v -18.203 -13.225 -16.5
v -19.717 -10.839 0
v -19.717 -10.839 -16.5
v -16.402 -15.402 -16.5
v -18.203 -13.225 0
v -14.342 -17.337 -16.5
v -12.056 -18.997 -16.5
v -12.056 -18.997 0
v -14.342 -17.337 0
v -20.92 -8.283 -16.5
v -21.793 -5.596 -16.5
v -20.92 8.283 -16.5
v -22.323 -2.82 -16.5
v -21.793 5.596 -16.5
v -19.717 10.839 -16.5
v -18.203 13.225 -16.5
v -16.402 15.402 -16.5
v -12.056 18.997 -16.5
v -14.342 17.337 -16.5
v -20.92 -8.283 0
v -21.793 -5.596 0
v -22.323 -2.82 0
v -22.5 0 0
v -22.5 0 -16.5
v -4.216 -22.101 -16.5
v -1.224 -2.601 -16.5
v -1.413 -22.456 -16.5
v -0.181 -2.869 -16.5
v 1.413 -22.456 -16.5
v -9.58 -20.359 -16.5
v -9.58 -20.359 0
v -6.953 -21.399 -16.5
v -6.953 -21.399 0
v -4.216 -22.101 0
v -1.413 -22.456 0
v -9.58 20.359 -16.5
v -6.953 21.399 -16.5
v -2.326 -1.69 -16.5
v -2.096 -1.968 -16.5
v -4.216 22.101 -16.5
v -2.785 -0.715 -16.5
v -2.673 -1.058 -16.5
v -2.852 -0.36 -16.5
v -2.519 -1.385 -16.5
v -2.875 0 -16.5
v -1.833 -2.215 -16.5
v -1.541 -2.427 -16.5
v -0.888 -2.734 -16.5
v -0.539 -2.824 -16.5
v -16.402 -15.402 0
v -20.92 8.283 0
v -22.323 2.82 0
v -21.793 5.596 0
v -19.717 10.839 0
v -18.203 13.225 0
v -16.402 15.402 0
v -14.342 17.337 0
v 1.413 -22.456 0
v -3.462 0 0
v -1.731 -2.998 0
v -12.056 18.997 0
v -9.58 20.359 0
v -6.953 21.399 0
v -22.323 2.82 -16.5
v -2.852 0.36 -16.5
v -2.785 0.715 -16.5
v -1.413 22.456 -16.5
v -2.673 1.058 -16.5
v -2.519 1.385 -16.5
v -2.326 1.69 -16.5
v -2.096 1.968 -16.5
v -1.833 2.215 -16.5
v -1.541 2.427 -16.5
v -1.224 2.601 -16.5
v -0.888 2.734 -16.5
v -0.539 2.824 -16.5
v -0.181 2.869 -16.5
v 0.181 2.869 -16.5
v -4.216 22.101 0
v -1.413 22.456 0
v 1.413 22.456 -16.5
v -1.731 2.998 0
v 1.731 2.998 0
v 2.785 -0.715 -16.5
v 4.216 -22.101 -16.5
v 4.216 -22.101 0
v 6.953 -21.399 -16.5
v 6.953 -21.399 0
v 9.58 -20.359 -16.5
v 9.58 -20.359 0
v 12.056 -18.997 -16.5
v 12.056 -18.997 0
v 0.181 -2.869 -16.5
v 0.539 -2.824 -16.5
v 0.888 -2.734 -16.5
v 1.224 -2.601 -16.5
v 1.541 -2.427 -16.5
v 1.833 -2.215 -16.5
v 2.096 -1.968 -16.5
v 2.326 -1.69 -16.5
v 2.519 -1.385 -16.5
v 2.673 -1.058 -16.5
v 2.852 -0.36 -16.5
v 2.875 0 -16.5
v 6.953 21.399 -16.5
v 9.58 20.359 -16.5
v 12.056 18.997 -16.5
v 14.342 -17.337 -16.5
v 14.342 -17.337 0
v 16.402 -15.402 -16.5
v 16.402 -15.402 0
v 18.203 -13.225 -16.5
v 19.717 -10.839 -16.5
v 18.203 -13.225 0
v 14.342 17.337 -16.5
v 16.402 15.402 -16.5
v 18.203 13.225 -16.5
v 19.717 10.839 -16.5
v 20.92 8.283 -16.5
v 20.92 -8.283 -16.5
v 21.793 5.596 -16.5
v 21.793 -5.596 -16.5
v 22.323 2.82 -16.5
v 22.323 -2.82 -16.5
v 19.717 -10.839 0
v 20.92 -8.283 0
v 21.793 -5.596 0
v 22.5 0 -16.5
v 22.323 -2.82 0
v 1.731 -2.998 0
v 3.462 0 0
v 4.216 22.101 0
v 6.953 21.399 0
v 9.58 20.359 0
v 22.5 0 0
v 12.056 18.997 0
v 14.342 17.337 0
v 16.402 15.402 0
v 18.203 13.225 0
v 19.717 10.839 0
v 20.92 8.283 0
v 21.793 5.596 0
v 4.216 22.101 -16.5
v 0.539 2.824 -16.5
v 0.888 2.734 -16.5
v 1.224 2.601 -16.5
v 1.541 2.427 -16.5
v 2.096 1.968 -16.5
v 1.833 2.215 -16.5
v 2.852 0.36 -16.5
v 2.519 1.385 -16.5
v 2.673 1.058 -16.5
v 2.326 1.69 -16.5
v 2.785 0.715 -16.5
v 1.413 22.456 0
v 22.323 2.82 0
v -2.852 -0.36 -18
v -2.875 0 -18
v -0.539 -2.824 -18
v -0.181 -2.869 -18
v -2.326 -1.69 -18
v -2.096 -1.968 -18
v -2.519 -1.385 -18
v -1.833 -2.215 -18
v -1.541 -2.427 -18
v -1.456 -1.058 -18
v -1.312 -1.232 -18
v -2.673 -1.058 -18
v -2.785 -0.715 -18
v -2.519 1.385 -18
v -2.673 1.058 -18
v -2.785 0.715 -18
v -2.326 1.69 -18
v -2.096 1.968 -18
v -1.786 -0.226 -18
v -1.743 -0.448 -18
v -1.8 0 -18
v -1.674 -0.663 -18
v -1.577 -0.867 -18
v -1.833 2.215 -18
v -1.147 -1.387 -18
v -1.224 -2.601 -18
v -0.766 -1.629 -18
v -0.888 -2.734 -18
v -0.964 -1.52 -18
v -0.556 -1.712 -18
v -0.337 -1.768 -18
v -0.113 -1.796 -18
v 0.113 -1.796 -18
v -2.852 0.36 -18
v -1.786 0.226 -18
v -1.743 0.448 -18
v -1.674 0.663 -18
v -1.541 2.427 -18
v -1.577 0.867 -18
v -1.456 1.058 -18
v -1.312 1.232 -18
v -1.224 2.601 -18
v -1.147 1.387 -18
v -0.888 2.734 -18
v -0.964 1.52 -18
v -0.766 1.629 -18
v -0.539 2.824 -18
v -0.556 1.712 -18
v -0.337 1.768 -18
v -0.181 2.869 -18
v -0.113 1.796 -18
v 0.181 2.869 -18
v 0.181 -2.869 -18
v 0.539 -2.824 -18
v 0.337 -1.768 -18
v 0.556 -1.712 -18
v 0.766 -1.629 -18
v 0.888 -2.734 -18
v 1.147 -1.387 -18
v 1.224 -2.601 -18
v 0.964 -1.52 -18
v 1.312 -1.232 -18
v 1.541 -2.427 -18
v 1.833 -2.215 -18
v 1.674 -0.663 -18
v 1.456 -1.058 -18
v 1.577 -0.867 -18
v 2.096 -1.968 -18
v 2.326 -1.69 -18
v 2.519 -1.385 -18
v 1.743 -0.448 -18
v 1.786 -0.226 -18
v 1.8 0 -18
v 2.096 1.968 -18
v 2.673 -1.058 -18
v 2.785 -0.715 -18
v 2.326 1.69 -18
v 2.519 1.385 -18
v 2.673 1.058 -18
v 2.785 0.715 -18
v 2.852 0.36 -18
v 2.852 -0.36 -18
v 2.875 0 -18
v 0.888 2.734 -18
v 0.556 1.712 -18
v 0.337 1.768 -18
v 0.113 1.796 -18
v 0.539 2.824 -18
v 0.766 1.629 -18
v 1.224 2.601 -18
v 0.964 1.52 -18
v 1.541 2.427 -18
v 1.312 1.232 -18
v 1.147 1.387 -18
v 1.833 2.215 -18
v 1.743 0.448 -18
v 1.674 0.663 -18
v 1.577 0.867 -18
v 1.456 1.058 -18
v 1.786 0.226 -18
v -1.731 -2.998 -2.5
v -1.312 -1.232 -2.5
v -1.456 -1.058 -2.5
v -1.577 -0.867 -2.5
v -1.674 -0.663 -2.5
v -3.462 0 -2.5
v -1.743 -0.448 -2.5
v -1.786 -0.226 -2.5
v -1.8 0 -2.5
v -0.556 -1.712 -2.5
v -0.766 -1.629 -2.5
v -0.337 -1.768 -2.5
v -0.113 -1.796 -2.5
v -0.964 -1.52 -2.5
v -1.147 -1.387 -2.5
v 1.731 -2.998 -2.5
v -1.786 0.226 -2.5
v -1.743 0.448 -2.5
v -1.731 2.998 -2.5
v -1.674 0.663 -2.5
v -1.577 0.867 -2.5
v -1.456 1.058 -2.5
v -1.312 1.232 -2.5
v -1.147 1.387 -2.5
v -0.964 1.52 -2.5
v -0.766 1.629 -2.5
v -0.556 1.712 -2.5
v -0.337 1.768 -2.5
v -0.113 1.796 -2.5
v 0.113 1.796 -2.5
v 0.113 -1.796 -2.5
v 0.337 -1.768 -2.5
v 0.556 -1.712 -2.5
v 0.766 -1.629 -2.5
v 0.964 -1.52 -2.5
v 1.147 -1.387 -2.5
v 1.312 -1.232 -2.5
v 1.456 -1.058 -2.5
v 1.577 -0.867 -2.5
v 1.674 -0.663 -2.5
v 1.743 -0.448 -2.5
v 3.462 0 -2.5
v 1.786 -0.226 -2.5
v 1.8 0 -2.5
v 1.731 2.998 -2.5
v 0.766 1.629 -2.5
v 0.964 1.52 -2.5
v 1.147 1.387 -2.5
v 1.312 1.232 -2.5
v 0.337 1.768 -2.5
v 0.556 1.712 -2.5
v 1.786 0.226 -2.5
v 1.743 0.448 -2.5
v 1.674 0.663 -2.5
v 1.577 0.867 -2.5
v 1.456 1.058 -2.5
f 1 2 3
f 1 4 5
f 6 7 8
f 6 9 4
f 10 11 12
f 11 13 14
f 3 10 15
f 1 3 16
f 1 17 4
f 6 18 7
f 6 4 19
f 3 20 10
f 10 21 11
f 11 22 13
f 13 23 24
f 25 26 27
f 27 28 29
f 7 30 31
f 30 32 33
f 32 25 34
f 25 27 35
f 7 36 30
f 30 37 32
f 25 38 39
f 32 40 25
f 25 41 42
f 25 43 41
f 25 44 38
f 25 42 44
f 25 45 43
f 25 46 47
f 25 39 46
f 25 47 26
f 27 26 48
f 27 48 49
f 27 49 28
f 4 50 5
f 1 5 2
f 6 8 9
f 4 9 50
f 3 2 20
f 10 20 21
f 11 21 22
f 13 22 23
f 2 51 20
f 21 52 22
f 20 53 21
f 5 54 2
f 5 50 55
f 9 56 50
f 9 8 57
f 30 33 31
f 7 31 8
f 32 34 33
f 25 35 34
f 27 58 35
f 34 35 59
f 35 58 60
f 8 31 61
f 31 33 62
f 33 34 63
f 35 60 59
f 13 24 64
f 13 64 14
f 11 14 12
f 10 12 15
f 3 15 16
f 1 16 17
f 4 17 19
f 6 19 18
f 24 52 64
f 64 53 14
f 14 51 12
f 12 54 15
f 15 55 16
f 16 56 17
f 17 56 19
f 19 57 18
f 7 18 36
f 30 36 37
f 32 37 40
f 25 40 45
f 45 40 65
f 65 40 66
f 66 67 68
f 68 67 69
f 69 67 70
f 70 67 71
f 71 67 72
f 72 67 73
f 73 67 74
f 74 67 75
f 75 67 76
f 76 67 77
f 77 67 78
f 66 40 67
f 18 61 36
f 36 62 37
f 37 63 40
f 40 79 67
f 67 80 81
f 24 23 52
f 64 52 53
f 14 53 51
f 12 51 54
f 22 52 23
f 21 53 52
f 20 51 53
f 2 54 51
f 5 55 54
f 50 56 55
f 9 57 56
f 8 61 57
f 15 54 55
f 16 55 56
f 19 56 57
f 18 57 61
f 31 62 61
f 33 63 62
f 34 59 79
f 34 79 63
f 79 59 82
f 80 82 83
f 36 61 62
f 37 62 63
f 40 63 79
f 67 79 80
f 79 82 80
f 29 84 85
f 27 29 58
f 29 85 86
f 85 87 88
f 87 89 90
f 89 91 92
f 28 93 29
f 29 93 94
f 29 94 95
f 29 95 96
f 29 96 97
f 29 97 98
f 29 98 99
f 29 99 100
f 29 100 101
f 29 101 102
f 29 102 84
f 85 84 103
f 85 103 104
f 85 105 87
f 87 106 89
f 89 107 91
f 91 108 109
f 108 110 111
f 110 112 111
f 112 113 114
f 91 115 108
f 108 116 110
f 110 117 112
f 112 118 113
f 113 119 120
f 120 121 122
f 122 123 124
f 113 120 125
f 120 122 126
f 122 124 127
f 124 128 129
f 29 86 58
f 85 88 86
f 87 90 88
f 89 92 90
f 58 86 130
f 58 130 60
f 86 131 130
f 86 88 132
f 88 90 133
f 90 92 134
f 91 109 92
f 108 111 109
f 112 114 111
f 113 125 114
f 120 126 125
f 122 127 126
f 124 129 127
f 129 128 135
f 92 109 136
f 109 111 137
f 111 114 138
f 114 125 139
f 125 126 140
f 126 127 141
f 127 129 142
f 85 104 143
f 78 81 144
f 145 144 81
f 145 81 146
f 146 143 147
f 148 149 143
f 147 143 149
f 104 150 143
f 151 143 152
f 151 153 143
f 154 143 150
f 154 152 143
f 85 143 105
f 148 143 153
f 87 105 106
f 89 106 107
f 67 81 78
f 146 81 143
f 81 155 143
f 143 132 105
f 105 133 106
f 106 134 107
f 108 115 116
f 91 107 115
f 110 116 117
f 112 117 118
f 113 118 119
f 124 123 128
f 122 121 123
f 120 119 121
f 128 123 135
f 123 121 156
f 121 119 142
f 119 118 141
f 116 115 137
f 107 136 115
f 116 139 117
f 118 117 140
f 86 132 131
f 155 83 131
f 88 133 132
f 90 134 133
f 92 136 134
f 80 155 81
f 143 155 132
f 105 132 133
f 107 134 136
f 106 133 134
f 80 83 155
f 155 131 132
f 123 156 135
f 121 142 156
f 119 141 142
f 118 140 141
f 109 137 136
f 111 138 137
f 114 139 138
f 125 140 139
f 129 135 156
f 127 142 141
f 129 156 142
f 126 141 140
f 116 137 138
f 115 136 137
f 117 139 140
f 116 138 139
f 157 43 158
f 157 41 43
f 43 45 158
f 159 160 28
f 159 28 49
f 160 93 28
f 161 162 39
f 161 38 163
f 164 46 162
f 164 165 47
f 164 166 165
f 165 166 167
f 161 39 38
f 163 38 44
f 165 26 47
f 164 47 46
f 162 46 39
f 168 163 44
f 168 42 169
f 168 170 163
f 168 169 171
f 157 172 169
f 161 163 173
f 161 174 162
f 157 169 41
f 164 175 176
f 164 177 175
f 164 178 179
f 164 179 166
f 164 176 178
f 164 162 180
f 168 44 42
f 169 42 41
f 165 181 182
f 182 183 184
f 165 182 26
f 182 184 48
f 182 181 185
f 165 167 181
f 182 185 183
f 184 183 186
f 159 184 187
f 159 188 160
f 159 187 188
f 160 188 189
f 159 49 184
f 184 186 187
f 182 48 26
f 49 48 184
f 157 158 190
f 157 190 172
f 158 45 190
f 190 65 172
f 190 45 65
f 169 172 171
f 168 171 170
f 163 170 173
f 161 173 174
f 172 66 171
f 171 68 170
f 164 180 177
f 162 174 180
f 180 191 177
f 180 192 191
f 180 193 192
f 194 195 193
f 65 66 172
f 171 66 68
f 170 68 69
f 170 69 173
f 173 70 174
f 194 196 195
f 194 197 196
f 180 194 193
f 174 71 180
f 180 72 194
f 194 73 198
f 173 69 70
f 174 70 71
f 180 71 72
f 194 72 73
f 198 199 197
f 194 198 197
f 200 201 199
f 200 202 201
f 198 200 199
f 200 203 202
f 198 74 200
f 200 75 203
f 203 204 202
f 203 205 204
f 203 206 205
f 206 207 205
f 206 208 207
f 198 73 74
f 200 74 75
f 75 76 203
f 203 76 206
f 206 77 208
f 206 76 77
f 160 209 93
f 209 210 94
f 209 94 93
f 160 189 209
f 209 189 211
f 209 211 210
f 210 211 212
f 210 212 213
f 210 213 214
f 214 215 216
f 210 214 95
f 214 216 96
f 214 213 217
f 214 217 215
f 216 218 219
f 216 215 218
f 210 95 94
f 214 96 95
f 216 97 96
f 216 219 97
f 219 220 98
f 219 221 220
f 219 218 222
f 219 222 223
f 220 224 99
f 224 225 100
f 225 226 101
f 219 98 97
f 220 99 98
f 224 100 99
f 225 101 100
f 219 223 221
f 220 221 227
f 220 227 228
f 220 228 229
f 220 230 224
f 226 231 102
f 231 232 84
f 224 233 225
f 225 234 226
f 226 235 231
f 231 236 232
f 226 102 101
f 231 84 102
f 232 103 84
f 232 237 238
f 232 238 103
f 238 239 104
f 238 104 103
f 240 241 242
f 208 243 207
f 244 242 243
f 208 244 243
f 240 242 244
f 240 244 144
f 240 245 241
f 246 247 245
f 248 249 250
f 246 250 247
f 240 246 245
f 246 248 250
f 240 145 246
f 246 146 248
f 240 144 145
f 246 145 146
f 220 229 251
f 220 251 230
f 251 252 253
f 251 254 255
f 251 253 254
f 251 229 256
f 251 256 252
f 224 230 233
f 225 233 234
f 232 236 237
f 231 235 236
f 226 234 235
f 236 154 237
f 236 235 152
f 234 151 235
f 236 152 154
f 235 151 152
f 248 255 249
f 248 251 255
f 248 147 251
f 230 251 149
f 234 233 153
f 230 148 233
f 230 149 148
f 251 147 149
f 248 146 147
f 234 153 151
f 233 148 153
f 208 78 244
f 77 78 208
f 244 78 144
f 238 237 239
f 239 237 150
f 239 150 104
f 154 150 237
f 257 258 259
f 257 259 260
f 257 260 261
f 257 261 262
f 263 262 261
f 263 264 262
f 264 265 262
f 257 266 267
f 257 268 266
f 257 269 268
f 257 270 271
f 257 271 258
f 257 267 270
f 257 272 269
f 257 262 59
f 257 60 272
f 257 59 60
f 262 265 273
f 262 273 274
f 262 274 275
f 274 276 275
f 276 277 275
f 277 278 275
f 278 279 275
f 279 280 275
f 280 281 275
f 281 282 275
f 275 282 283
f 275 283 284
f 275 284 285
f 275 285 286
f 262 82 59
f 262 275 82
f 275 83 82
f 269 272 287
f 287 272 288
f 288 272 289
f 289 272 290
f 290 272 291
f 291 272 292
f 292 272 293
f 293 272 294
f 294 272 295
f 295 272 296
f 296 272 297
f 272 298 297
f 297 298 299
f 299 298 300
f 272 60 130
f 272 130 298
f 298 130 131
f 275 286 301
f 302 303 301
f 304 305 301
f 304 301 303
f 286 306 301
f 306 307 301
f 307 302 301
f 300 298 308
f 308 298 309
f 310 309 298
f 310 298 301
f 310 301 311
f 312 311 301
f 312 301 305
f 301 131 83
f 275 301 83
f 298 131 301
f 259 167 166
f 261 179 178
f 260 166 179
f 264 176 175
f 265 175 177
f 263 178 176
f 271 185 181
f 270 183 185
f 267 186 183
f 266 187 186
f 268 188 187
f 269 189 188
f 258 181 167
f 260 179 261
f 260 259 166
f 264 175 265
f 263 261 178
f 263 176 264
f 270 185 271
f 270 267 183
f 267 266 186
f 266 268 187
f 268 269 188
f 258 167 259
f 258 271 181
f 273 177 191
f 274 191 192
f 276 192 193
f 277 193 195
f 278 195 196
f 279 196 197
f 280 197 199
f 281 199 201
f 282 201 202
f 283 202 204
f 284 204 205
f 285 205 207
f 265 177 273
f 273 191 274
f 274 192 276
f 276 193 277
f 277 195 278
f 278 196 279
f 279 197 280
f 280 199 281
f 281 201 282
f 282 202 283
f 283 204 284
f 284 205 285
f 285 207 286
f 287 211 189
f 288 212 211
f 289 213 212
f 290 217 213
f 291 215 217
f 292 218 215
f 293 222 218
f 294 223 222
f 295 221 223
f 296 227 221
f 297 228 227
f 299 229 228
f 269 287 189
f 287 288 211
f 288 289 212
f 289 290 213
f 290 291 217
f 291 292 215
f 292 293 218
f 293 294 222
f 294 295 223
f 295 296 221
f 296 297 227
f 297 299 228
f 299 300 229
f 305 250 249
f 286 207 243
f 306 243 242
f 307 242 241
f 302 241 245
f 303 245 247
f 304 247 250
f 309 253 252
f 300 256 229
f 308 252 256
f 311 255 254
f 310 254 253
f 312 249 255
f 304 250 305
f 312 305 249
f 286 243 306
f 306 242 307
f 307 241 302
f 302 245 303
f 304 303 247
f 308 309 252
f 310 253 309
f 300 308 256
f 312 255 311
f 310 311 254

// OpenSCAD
$fn = 50;

difference() {
	union() {
		translate(v = [0, 0, -16.5]) {
			cylinder(h = 16.5, r = 22.5);
		}
		#translate(v = [0, 0, -18.0]) {
			cylinder(h = 18, r = 2.875);
		}
	}
	union() {
		translate(v = [0, 0, 0]) {
			rotate(a = [0, 0, 0]) {
				difference() {
					union() {
						translate(v = [0, 0, -2.5]) {
							linear_extrude(height = 2.5) {
								polygon(points = [[3.4619999999999997, 0.0], [1.7310000000000003, 2.9981799479017264], [-1.7309999999999992, 2.9981799479017264], [-3.4619999999999997, 4.2397272186481365e-16], [-1.7310000000000014, -2.998179947901726], [1.7309999999999977, -2.9981799479017277]]);
							}
						}
					}
					union();
				}
			}
		}
		#translate(v = [0, 0, -100.0]) {
			cylinder(h = 200, r = 1.8);
		}
	}
}
